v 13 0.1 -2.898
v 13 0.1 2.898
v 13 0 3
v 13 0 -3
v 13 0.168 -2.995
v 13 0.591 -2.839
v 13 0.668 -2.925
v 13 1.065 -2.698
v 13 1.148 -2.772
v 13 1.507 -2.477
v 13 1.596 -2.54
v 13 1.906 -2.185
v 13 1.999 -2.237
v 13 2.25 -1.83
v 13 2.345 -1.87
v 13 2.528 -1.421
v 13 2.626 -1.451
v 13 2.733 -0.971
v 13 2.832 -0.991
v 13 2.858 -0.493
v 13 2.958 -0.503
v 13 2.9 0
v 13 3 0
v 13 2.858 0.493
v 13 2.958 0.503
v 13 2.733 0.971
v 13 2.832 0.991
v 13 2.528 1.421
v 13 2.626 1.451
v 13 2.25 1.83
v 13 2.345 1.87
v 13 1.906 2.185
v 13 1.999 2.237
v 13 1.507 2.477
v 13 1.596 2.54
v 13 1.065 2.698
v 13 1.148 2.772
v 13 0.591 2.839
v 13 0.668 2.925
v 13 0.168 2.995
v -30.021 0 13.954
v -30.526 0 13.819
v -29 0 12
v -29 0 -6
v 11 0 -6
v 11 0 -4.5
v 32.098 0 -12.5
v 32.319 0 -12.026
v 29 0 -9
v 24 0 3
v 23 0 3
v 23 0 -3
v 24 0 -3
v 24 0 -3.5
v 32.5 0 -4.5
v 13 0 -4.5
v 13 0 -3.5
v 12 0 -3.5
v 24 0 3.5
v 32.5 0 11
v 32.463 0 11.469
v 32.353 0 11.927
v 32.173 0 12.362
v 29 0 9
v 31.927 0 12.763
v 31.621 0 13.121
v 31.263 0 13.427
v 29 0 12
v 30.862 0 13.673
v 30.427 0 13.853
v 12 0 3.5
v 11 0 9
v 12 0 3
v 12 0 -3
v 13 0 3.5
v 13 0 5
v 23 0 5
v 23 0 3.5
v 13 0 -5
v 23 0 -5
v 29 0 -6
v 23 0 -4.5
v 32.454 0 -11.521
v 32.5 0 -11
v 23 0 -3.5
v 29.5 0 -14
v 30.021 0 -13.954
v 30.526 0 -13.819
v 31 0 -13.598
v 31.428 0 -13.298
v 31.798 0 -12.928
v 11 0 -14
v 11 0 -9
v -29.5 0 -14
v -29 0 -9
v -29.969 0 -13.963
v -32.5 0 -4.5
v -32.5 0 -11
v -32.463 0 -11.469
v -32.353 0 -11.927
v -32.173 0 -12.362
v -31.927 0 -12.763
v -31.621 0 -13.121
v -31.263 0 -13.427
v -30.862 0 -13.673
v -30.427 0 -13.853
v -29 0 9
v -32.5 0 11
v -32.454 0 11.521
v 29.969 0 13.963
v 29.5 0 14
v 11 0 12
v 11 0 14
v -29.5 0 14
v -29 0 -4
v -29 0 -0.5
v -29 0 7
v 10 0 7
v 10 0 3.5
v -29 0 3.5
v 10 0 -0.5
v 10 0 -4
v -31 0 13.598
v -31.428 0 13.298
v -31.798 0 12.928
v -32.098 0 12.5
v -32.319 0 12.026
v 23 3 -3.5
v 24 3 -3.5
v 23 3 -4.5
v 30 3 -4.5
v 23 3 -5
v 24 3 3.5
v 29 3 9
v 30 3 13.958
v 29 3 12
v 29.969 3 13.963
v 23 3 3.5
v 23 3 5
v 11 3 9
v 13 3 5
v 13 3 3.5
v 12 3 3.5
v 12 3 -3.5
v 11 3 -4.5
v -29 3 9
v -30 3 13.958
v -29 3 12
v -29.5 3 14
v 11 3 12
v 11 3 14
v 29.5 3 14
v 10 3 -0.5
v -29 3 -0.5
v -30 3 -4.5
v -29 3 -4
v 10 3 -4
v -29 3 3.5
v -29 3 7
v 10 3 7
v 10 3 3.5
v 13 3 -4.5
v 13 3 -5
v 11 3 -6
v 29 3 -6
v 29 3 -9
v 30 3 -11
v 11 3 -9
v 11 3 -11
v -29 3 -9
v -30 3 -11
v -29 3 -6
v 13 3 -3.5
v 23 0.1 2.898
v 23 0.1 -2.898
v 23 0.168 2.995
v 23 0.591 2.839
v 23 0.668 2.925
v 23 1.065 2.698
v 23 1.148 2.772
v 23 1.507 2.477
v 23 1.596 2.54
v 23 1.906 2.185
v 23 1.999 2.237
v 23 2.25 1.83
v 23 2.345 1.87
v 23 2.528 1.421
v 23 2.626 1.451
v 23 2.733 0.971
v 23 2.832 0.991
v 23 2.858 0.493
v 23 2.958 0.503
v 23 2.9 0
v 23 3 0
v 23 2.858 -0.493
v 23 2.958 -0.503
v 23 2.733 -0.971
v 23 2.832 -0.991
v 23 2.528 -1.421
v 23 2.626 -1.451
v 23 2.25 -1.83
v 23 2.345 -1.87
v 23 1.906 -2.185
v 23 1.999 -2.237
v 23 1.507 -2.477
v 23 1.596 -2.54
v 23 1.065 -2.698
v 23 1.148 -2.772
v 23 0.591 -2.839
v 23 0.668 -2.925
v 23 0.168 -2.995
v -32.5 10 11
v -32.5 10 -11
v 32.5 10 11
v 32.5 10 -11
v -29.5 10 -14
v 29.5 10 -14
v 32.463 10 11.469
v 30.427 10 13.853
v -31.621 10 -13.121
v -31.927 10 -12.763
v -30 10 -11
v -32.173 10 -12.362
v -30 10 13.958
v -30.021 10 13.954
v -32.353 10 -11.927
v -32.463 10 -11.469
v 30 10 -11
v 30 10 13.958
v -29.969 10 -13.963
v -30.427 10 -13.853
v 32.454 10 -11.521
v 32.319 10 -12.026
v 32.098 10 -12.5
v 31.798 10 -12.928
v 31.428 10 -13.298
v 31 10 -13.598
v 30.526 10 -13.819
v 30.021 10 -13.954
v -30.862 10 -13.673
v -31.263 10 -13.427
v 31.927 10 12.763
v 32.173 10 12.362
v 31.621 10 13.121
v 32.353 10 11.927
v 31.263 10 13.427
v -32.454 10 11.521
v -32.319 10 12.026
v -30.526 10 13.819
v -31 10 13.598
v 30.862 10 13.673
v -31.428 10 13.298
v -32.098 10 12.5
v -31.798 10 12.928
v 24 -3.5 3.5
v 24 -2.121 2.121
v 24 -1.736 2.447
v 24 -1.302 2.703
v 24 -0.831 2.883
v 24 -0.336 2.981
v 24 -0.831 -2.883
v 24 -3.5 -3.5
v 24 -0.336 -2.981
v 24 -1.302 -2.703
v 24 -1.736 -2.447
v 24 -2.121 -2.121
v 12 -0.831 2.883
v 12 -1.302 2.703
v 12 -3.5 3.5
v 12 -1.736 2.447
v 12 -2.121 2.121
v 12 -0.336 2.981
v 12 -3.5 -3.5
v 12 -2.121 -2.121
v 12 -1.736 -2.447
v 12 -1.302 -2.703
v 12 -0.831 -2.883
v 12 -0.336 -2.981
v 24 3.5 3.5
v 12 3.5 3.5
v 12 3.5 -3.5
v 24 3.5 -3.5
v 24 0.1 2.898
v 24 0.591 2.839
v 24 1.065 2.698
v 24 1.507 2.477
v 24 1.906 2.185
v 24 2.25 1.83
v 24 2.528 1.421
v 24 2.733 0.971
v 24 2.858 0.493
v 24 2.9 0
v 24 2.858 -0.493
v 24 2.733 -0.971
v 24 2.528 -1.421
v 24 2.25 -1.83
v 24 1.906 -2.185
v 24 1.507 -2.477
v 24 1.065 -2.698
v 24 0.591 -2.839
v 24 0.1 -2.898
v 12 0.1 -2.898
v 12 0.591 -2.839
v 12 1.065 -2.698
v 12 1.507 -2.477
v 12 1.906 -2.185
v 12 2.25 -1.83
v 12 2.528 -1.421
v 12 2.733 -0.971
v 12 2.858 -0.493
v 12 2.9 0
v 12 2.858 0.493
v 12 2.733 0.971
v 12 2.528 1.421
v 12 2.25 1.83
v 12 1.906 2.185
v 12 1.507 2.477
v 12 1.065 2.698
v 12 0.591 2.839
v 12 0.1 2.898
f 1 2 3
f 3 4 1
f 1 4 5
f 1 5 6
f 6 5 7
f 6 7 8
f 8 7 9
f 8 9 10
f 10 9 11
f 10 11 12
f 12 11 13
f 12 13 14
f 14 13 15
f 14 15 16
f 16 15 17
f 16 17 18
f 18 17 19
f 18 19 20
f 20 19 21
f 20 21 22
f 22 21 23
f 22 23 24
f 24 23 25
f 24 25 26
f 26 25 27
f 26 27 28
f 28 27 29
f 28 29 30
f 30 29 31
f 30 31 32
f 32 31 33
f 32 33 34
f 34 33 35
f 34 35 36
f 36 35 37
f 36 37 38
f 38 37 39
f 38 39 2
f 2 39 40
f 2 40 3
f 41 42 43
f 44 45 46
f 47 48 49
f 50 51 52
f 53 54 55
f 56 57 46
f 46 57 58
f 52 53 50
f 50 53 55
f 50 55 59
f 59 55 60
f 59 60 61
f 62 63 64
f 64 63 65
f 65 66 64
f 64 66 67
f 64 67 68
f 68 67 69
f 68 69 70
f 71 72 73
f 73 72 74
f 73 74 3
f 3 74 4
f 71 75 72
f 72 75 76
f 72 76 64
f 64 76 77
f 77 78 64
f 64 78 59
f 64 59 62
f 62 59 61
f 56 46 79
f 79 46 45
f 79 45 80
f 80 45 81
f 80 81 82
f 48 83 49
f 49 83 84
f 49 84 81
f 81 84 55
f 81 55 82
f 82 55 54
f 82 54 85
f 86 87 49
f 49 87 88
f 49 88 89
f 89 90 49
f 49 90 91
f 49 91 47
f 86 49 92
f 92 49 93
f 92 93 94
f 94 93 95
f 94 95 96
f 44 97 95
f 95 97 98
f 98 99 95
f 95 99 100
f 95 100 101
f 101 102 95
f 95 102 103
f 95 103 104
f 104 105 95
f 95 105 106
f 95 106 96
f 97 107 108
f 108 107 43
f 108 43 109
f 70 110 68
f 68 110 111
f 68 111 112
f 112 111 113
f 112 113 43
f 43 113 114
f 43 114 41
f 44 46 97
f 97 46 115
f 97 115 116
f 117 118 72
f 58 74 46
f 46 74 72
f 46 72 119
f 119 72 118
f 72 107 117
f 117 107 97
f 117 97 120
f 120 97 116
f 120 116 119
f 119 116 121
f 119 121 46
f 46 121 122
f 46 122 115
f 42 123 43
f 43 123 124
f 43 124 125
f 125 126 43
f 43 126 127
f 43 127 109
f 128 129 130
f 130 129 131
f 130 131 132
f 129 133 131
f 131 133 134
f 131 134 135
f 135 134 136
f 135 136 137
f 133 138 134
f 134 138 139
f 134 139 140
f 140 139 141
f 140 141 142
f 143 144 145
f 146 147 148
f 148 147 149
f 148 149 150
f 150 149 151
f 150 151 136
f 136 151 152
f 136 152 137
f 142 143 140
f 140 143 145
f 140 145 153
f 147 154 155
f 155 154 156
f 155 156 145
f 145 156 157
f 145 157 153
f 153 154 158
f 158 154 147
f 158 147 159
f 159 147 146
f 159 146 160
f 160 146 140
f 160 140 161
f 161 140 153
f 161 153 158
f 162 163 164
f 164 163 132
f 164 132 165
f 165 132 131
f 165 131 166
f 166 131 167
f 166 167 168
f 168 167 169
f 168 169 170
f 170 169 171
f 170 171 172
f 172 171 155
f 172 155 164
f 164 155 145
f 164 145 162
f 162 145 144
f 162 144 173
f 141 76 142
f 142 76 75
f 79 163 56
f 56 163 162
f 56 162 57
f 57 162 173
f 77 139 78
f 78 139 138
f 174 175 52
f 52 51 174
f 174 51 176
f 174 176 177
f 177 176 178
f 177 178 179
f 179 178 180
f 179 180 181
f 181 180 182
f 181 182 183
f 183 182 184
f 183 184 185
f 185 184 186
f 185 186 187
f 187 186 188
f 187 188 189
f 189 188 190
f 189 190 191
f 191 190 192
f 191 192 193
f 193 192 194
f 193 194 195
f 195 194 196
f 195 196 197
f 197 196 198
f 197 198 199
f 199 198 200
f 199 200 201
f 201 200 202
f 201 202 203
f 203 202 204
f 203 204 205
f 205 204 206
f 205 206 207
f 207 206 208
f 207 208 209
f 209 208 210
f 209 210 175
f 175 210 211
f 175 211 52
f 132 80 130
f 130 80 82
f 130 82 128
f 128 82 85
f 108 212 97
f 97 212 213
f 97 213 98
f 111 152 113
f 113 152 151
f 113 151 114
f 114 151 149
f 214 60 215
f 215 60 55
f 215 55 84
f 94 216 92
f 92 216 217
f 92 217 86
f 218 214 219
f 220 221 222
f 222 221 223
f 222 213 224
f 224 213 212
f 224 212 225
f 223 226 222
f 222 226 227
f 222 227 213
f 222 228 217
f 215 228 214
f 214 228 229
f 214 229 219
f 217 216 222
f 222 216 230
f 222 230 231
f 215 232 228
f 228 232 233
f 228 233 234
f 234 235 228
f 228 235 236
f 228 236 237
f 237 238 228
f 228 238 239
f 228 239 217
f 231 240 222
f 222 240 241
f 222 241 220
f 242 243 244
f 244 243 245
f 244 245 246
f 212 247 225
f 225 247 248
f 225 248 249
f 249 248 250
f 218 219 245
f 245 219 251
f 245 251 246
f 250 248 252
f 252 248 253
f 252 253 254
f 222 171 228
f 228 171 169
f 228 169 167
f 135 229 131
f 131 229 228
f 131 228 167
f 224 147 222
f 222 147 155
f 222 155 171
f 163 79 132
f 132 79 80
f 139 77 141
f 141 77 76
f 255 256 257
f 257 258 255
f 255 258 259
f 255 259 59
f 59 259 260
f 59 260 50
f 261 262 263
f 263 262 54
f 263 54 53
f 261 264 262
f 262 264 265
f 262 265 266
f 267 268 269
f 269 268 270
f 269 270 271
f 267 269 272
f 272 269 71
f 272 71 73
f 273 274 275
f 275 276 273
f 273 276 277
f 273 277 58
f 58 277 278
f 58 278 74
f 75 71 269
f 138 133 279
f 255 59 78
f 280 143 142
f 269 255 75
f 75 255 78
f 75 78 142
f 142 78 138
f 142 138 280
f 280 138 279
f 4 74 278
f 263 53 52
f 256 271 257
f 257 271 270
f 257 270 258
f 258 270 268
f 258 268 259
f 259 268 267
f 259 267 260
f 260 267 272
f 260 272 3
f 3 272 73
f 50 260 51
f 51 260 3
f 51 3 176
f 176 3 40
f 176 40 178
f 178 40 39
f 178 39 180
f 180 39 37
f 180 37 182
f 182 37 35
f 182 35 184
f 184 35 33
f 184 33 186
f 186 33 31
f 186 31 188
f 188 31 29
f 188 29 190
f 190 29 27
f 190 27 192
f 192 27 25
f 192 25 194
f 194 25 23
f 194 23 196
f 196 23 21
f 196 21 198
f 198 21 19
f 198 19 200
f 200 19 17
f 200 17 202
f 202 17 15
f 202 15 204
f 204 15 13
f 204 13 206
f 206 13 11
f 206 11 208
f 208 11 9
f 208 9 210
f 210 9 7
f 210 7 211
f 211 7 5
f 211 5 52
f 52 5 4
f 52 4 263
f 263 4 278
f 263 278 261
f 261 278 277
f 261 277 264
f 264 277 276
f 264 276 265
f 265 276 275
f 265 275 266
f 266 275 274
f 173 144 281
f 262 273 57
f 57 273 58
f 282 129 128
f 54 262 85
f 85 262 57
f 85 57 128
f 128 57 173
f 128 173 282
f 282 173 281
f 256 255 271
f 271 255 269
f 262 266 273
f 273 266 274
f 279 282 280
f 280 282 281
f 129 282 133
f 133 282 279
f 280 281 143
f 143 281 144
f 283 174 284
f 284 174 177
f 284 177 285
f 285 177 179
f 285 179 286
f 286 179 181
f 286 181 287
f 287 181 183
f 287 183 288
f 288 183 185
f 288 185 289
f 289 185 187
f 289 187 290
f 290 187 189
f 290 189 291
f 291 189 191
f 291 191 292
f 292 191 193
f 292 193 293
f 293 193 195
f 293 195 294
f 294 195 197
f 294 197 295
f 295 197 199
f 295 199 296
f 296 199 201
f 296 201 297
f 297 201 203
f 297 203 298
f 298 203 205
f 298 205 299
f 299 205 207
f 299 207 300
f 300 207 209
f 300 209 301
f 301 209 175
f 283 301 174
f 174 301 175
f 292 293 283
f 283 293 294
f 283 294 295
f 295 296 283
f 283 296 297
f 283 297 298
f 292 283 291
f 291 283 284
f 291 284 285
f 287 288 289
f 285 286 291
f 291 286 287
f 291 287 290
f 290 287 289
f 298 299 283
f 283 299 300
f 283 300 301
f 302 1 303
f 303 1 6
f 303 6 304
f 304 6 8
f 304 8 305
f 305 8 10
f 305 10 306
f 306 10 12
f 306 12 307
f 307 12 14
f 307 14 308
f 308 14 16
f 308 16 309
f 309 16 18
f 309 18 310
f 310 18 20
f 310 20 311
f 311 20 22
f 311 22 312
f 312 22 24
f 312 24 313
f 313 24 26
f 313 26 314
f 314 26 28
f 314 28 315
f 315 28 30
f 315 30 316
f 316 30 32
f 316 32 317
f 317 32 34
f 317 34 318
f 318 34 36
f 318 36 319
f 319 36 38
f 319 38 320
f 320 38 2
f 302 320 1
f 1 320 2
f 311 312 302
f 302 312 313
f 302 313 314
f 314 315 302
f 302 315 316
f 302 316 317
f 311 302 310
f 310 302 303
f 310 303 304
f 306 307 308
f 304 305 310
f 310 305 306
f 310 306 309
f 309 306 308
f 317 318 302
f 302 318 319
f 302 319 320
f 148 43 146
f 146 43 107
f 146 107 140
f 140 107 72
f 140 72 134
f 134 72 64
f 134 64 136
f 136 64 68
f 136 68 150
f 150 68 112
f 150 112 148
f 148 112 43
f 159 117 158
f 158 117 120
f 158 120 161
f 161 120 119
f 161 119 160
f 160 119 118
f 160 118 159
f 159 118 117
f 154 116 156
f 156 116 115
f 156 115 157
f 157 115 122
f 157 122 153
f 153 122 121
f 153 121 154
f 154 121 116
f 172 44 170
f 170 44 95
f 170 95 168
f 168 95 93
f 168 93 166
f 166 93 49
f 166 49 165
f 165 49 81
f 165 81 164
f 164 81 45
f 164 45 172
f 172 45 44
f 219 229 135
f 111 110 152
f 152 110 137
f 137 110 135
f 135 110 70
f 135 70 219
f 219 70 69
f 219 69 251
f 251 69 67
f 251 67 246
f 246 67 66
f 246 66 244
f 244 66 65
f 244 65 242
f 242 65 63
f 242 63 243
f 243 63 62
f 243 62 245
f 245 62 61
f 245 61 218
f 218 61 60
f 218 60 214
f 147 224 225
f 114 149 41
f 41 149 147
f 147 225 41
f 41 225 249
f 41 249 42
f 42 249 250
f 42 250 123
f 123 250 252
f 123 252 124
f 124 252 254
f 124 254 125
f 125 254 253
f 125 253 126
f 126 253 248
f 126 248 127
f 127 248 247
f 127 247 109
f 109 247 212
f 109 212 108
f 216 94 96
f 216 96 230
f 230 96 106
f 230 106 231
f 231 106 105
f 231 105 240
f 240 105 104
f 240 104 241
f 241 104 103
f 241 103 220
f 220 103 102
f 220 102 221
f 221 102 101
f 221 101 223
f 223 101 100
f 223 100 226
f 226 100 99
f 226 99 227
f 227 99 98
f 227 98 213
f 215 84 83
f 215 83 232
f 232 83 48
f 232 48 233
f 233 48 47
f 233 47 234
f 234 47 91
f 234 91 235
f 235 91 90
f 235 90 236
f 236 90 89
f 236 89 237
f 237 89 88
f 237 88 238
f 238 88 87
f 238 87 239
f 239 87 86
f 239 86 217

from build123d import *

# Parameters (mm, degrees)
SKETCH1_W           = 65
SKETCH1_H           = 28
BOSS_EXTRUDE1_DEPTH = 10
CUT_EXTRUDE1_DEPTH  = 7
SKETCH3_W           = 10
SKETCH3_H           = 10
CUT_EXTRUDE2_DEPTH  = 7
BOSS_EXTRUDE5_DEPTH = 6
CUT_EXTRUDE6_DEPTH  = 1
SKETCH6_W           = 58
SKETCH6_H           = 3
SKETCH6_W_2         = 39
SKETCH6_H_2         = 3.5
CUT_EXTRUDE7_DEPTH  = 41
FILLET1_R           = 3


with BuildPart() as part:
    # Sketch1 → Boss-Extrude1 (new body)
    with BuildSketch(Plane(origin=(0, 0, 0), x_dir=(1, 0, 0), z_dir=(0, 1, 0))):
        Rectangle(SKETCH1_W, SKETCH1_H)
    extrude(amount=BOSS_EXTRUDE1_DEPTH)

    # Sketch2 → Cut-Extrude1 (cut)
    with BuildSketch(Plane(origin=(0, 10, 0), x_dir=(1, 0, 0), z_dir=(0, 1, 0))):
        Polygon((30, -11), (30, 11), (-30, 11), (-30, -11), (-30, -14), (30, -14), align=None)
    extrude(amount=-CUT_EXTRUDE1_DEPTH, mode=Mode.SUBTRACT)

    # Sketch3 → Cut-Extrude2 (cut)
    with BuildSketch(Plane(origin=(0, 3, 0), x_dir=(1, 0, 0), z_dir=(0, 1, 0))):
        with Locations((18, 0)):
            Rectangle(SKETCH3_W, SKETCH3_H)
    extrude(amount=-CUT_EXTRUDE2_DEPTH, mode=Mode.SUBTRACT)

    # Sketch4 → Boss-Extrude5 (add, symmetric)
    with BuildSketch(Plane(origin=(18, 0, 0), x_dir=(0, 0, -1), z_dir=(1, 0, 0))):
        with BuildLine():
            Line((-3.5, -3.5), (-2.121320344, -2.121320344))
            ThreePointArc((-2.121320344, -2.121320344), (0, 3), (2.121320344, -2.121320344))
            Line((2.121320344, -2.121320344), (3.5, -3.5))
            Line((3.5, -3.5), (3.5, 3.5))
            Line((3.5, 3.5), (-3.5, 3.5))
            Line((-3.5, 3.5), (-3.5, -3.5))
        make_face()
    extrude(amount=BOSS_EXTRUDE5_DEPTH, both=True)

    # Sketch5 → Cut-Extrude6 (cut)
    with BuildSketch(Plane.ZY.offset(-23)):
        with BuildLine():
            Line((-2.898275349, 0.1), (2.898275349, 0.1))
            ThreePointArc((2.898275349, 0.1), (0, 2.9), (-2.898275349, 0.1))
        make_face()
    cut_extrude6 = extrude(amount=-CUT_EXTRUDE6_DEPTH, mode=Mode.SUBTRACT)

    # Mirror1: Cut-Extrude6 across plane
    add(cut_extrude6.mirror(Plane(origin=(18, 0, 0), x_dir=(0, 0, 1), z_dir=(1, 0, 0))), mode=Mode.SUBTRACT)

    # Sketch6 → Cut-Extrude7 (cut)
    with BuildSketch(Plane(origin=(0, 3, 0), x_dir=(1, 0, 0), z_dir=(0, 1, 0))):
        with Locations((0, 7.5)):
            Rectangle(SKETCH6_W, SKETCH6_H)
        with Locations((-9.5, 2.25)):
            Rectangle(SKETCH6_W_2, SKETCH6_H_2)
        with Locations((-9.5, -5.25)):
            Rectangle(SKETCH6_W_2, SKETCH6_H_2)
        with Locations((0, -10.5)):
            Rectangle(SKETCH6_W, SKETCH6_H)
    extrude(amount=-CUT_EXTRUDE7_DEPTH, mode=Mode.SUBTRACT)

    # Fillet1
    fillet1_edges = [part.edges().sort_by_distance(p)[0] for p in [
        (32.5, 5, 14),
        (-32.5, 5, 14),
        (-32.5, 5, -14),
        (32.5, 5, -14),
    ]]
    fillet(fillet1_edges, radius=FILLET1_R)


solid = part.part
